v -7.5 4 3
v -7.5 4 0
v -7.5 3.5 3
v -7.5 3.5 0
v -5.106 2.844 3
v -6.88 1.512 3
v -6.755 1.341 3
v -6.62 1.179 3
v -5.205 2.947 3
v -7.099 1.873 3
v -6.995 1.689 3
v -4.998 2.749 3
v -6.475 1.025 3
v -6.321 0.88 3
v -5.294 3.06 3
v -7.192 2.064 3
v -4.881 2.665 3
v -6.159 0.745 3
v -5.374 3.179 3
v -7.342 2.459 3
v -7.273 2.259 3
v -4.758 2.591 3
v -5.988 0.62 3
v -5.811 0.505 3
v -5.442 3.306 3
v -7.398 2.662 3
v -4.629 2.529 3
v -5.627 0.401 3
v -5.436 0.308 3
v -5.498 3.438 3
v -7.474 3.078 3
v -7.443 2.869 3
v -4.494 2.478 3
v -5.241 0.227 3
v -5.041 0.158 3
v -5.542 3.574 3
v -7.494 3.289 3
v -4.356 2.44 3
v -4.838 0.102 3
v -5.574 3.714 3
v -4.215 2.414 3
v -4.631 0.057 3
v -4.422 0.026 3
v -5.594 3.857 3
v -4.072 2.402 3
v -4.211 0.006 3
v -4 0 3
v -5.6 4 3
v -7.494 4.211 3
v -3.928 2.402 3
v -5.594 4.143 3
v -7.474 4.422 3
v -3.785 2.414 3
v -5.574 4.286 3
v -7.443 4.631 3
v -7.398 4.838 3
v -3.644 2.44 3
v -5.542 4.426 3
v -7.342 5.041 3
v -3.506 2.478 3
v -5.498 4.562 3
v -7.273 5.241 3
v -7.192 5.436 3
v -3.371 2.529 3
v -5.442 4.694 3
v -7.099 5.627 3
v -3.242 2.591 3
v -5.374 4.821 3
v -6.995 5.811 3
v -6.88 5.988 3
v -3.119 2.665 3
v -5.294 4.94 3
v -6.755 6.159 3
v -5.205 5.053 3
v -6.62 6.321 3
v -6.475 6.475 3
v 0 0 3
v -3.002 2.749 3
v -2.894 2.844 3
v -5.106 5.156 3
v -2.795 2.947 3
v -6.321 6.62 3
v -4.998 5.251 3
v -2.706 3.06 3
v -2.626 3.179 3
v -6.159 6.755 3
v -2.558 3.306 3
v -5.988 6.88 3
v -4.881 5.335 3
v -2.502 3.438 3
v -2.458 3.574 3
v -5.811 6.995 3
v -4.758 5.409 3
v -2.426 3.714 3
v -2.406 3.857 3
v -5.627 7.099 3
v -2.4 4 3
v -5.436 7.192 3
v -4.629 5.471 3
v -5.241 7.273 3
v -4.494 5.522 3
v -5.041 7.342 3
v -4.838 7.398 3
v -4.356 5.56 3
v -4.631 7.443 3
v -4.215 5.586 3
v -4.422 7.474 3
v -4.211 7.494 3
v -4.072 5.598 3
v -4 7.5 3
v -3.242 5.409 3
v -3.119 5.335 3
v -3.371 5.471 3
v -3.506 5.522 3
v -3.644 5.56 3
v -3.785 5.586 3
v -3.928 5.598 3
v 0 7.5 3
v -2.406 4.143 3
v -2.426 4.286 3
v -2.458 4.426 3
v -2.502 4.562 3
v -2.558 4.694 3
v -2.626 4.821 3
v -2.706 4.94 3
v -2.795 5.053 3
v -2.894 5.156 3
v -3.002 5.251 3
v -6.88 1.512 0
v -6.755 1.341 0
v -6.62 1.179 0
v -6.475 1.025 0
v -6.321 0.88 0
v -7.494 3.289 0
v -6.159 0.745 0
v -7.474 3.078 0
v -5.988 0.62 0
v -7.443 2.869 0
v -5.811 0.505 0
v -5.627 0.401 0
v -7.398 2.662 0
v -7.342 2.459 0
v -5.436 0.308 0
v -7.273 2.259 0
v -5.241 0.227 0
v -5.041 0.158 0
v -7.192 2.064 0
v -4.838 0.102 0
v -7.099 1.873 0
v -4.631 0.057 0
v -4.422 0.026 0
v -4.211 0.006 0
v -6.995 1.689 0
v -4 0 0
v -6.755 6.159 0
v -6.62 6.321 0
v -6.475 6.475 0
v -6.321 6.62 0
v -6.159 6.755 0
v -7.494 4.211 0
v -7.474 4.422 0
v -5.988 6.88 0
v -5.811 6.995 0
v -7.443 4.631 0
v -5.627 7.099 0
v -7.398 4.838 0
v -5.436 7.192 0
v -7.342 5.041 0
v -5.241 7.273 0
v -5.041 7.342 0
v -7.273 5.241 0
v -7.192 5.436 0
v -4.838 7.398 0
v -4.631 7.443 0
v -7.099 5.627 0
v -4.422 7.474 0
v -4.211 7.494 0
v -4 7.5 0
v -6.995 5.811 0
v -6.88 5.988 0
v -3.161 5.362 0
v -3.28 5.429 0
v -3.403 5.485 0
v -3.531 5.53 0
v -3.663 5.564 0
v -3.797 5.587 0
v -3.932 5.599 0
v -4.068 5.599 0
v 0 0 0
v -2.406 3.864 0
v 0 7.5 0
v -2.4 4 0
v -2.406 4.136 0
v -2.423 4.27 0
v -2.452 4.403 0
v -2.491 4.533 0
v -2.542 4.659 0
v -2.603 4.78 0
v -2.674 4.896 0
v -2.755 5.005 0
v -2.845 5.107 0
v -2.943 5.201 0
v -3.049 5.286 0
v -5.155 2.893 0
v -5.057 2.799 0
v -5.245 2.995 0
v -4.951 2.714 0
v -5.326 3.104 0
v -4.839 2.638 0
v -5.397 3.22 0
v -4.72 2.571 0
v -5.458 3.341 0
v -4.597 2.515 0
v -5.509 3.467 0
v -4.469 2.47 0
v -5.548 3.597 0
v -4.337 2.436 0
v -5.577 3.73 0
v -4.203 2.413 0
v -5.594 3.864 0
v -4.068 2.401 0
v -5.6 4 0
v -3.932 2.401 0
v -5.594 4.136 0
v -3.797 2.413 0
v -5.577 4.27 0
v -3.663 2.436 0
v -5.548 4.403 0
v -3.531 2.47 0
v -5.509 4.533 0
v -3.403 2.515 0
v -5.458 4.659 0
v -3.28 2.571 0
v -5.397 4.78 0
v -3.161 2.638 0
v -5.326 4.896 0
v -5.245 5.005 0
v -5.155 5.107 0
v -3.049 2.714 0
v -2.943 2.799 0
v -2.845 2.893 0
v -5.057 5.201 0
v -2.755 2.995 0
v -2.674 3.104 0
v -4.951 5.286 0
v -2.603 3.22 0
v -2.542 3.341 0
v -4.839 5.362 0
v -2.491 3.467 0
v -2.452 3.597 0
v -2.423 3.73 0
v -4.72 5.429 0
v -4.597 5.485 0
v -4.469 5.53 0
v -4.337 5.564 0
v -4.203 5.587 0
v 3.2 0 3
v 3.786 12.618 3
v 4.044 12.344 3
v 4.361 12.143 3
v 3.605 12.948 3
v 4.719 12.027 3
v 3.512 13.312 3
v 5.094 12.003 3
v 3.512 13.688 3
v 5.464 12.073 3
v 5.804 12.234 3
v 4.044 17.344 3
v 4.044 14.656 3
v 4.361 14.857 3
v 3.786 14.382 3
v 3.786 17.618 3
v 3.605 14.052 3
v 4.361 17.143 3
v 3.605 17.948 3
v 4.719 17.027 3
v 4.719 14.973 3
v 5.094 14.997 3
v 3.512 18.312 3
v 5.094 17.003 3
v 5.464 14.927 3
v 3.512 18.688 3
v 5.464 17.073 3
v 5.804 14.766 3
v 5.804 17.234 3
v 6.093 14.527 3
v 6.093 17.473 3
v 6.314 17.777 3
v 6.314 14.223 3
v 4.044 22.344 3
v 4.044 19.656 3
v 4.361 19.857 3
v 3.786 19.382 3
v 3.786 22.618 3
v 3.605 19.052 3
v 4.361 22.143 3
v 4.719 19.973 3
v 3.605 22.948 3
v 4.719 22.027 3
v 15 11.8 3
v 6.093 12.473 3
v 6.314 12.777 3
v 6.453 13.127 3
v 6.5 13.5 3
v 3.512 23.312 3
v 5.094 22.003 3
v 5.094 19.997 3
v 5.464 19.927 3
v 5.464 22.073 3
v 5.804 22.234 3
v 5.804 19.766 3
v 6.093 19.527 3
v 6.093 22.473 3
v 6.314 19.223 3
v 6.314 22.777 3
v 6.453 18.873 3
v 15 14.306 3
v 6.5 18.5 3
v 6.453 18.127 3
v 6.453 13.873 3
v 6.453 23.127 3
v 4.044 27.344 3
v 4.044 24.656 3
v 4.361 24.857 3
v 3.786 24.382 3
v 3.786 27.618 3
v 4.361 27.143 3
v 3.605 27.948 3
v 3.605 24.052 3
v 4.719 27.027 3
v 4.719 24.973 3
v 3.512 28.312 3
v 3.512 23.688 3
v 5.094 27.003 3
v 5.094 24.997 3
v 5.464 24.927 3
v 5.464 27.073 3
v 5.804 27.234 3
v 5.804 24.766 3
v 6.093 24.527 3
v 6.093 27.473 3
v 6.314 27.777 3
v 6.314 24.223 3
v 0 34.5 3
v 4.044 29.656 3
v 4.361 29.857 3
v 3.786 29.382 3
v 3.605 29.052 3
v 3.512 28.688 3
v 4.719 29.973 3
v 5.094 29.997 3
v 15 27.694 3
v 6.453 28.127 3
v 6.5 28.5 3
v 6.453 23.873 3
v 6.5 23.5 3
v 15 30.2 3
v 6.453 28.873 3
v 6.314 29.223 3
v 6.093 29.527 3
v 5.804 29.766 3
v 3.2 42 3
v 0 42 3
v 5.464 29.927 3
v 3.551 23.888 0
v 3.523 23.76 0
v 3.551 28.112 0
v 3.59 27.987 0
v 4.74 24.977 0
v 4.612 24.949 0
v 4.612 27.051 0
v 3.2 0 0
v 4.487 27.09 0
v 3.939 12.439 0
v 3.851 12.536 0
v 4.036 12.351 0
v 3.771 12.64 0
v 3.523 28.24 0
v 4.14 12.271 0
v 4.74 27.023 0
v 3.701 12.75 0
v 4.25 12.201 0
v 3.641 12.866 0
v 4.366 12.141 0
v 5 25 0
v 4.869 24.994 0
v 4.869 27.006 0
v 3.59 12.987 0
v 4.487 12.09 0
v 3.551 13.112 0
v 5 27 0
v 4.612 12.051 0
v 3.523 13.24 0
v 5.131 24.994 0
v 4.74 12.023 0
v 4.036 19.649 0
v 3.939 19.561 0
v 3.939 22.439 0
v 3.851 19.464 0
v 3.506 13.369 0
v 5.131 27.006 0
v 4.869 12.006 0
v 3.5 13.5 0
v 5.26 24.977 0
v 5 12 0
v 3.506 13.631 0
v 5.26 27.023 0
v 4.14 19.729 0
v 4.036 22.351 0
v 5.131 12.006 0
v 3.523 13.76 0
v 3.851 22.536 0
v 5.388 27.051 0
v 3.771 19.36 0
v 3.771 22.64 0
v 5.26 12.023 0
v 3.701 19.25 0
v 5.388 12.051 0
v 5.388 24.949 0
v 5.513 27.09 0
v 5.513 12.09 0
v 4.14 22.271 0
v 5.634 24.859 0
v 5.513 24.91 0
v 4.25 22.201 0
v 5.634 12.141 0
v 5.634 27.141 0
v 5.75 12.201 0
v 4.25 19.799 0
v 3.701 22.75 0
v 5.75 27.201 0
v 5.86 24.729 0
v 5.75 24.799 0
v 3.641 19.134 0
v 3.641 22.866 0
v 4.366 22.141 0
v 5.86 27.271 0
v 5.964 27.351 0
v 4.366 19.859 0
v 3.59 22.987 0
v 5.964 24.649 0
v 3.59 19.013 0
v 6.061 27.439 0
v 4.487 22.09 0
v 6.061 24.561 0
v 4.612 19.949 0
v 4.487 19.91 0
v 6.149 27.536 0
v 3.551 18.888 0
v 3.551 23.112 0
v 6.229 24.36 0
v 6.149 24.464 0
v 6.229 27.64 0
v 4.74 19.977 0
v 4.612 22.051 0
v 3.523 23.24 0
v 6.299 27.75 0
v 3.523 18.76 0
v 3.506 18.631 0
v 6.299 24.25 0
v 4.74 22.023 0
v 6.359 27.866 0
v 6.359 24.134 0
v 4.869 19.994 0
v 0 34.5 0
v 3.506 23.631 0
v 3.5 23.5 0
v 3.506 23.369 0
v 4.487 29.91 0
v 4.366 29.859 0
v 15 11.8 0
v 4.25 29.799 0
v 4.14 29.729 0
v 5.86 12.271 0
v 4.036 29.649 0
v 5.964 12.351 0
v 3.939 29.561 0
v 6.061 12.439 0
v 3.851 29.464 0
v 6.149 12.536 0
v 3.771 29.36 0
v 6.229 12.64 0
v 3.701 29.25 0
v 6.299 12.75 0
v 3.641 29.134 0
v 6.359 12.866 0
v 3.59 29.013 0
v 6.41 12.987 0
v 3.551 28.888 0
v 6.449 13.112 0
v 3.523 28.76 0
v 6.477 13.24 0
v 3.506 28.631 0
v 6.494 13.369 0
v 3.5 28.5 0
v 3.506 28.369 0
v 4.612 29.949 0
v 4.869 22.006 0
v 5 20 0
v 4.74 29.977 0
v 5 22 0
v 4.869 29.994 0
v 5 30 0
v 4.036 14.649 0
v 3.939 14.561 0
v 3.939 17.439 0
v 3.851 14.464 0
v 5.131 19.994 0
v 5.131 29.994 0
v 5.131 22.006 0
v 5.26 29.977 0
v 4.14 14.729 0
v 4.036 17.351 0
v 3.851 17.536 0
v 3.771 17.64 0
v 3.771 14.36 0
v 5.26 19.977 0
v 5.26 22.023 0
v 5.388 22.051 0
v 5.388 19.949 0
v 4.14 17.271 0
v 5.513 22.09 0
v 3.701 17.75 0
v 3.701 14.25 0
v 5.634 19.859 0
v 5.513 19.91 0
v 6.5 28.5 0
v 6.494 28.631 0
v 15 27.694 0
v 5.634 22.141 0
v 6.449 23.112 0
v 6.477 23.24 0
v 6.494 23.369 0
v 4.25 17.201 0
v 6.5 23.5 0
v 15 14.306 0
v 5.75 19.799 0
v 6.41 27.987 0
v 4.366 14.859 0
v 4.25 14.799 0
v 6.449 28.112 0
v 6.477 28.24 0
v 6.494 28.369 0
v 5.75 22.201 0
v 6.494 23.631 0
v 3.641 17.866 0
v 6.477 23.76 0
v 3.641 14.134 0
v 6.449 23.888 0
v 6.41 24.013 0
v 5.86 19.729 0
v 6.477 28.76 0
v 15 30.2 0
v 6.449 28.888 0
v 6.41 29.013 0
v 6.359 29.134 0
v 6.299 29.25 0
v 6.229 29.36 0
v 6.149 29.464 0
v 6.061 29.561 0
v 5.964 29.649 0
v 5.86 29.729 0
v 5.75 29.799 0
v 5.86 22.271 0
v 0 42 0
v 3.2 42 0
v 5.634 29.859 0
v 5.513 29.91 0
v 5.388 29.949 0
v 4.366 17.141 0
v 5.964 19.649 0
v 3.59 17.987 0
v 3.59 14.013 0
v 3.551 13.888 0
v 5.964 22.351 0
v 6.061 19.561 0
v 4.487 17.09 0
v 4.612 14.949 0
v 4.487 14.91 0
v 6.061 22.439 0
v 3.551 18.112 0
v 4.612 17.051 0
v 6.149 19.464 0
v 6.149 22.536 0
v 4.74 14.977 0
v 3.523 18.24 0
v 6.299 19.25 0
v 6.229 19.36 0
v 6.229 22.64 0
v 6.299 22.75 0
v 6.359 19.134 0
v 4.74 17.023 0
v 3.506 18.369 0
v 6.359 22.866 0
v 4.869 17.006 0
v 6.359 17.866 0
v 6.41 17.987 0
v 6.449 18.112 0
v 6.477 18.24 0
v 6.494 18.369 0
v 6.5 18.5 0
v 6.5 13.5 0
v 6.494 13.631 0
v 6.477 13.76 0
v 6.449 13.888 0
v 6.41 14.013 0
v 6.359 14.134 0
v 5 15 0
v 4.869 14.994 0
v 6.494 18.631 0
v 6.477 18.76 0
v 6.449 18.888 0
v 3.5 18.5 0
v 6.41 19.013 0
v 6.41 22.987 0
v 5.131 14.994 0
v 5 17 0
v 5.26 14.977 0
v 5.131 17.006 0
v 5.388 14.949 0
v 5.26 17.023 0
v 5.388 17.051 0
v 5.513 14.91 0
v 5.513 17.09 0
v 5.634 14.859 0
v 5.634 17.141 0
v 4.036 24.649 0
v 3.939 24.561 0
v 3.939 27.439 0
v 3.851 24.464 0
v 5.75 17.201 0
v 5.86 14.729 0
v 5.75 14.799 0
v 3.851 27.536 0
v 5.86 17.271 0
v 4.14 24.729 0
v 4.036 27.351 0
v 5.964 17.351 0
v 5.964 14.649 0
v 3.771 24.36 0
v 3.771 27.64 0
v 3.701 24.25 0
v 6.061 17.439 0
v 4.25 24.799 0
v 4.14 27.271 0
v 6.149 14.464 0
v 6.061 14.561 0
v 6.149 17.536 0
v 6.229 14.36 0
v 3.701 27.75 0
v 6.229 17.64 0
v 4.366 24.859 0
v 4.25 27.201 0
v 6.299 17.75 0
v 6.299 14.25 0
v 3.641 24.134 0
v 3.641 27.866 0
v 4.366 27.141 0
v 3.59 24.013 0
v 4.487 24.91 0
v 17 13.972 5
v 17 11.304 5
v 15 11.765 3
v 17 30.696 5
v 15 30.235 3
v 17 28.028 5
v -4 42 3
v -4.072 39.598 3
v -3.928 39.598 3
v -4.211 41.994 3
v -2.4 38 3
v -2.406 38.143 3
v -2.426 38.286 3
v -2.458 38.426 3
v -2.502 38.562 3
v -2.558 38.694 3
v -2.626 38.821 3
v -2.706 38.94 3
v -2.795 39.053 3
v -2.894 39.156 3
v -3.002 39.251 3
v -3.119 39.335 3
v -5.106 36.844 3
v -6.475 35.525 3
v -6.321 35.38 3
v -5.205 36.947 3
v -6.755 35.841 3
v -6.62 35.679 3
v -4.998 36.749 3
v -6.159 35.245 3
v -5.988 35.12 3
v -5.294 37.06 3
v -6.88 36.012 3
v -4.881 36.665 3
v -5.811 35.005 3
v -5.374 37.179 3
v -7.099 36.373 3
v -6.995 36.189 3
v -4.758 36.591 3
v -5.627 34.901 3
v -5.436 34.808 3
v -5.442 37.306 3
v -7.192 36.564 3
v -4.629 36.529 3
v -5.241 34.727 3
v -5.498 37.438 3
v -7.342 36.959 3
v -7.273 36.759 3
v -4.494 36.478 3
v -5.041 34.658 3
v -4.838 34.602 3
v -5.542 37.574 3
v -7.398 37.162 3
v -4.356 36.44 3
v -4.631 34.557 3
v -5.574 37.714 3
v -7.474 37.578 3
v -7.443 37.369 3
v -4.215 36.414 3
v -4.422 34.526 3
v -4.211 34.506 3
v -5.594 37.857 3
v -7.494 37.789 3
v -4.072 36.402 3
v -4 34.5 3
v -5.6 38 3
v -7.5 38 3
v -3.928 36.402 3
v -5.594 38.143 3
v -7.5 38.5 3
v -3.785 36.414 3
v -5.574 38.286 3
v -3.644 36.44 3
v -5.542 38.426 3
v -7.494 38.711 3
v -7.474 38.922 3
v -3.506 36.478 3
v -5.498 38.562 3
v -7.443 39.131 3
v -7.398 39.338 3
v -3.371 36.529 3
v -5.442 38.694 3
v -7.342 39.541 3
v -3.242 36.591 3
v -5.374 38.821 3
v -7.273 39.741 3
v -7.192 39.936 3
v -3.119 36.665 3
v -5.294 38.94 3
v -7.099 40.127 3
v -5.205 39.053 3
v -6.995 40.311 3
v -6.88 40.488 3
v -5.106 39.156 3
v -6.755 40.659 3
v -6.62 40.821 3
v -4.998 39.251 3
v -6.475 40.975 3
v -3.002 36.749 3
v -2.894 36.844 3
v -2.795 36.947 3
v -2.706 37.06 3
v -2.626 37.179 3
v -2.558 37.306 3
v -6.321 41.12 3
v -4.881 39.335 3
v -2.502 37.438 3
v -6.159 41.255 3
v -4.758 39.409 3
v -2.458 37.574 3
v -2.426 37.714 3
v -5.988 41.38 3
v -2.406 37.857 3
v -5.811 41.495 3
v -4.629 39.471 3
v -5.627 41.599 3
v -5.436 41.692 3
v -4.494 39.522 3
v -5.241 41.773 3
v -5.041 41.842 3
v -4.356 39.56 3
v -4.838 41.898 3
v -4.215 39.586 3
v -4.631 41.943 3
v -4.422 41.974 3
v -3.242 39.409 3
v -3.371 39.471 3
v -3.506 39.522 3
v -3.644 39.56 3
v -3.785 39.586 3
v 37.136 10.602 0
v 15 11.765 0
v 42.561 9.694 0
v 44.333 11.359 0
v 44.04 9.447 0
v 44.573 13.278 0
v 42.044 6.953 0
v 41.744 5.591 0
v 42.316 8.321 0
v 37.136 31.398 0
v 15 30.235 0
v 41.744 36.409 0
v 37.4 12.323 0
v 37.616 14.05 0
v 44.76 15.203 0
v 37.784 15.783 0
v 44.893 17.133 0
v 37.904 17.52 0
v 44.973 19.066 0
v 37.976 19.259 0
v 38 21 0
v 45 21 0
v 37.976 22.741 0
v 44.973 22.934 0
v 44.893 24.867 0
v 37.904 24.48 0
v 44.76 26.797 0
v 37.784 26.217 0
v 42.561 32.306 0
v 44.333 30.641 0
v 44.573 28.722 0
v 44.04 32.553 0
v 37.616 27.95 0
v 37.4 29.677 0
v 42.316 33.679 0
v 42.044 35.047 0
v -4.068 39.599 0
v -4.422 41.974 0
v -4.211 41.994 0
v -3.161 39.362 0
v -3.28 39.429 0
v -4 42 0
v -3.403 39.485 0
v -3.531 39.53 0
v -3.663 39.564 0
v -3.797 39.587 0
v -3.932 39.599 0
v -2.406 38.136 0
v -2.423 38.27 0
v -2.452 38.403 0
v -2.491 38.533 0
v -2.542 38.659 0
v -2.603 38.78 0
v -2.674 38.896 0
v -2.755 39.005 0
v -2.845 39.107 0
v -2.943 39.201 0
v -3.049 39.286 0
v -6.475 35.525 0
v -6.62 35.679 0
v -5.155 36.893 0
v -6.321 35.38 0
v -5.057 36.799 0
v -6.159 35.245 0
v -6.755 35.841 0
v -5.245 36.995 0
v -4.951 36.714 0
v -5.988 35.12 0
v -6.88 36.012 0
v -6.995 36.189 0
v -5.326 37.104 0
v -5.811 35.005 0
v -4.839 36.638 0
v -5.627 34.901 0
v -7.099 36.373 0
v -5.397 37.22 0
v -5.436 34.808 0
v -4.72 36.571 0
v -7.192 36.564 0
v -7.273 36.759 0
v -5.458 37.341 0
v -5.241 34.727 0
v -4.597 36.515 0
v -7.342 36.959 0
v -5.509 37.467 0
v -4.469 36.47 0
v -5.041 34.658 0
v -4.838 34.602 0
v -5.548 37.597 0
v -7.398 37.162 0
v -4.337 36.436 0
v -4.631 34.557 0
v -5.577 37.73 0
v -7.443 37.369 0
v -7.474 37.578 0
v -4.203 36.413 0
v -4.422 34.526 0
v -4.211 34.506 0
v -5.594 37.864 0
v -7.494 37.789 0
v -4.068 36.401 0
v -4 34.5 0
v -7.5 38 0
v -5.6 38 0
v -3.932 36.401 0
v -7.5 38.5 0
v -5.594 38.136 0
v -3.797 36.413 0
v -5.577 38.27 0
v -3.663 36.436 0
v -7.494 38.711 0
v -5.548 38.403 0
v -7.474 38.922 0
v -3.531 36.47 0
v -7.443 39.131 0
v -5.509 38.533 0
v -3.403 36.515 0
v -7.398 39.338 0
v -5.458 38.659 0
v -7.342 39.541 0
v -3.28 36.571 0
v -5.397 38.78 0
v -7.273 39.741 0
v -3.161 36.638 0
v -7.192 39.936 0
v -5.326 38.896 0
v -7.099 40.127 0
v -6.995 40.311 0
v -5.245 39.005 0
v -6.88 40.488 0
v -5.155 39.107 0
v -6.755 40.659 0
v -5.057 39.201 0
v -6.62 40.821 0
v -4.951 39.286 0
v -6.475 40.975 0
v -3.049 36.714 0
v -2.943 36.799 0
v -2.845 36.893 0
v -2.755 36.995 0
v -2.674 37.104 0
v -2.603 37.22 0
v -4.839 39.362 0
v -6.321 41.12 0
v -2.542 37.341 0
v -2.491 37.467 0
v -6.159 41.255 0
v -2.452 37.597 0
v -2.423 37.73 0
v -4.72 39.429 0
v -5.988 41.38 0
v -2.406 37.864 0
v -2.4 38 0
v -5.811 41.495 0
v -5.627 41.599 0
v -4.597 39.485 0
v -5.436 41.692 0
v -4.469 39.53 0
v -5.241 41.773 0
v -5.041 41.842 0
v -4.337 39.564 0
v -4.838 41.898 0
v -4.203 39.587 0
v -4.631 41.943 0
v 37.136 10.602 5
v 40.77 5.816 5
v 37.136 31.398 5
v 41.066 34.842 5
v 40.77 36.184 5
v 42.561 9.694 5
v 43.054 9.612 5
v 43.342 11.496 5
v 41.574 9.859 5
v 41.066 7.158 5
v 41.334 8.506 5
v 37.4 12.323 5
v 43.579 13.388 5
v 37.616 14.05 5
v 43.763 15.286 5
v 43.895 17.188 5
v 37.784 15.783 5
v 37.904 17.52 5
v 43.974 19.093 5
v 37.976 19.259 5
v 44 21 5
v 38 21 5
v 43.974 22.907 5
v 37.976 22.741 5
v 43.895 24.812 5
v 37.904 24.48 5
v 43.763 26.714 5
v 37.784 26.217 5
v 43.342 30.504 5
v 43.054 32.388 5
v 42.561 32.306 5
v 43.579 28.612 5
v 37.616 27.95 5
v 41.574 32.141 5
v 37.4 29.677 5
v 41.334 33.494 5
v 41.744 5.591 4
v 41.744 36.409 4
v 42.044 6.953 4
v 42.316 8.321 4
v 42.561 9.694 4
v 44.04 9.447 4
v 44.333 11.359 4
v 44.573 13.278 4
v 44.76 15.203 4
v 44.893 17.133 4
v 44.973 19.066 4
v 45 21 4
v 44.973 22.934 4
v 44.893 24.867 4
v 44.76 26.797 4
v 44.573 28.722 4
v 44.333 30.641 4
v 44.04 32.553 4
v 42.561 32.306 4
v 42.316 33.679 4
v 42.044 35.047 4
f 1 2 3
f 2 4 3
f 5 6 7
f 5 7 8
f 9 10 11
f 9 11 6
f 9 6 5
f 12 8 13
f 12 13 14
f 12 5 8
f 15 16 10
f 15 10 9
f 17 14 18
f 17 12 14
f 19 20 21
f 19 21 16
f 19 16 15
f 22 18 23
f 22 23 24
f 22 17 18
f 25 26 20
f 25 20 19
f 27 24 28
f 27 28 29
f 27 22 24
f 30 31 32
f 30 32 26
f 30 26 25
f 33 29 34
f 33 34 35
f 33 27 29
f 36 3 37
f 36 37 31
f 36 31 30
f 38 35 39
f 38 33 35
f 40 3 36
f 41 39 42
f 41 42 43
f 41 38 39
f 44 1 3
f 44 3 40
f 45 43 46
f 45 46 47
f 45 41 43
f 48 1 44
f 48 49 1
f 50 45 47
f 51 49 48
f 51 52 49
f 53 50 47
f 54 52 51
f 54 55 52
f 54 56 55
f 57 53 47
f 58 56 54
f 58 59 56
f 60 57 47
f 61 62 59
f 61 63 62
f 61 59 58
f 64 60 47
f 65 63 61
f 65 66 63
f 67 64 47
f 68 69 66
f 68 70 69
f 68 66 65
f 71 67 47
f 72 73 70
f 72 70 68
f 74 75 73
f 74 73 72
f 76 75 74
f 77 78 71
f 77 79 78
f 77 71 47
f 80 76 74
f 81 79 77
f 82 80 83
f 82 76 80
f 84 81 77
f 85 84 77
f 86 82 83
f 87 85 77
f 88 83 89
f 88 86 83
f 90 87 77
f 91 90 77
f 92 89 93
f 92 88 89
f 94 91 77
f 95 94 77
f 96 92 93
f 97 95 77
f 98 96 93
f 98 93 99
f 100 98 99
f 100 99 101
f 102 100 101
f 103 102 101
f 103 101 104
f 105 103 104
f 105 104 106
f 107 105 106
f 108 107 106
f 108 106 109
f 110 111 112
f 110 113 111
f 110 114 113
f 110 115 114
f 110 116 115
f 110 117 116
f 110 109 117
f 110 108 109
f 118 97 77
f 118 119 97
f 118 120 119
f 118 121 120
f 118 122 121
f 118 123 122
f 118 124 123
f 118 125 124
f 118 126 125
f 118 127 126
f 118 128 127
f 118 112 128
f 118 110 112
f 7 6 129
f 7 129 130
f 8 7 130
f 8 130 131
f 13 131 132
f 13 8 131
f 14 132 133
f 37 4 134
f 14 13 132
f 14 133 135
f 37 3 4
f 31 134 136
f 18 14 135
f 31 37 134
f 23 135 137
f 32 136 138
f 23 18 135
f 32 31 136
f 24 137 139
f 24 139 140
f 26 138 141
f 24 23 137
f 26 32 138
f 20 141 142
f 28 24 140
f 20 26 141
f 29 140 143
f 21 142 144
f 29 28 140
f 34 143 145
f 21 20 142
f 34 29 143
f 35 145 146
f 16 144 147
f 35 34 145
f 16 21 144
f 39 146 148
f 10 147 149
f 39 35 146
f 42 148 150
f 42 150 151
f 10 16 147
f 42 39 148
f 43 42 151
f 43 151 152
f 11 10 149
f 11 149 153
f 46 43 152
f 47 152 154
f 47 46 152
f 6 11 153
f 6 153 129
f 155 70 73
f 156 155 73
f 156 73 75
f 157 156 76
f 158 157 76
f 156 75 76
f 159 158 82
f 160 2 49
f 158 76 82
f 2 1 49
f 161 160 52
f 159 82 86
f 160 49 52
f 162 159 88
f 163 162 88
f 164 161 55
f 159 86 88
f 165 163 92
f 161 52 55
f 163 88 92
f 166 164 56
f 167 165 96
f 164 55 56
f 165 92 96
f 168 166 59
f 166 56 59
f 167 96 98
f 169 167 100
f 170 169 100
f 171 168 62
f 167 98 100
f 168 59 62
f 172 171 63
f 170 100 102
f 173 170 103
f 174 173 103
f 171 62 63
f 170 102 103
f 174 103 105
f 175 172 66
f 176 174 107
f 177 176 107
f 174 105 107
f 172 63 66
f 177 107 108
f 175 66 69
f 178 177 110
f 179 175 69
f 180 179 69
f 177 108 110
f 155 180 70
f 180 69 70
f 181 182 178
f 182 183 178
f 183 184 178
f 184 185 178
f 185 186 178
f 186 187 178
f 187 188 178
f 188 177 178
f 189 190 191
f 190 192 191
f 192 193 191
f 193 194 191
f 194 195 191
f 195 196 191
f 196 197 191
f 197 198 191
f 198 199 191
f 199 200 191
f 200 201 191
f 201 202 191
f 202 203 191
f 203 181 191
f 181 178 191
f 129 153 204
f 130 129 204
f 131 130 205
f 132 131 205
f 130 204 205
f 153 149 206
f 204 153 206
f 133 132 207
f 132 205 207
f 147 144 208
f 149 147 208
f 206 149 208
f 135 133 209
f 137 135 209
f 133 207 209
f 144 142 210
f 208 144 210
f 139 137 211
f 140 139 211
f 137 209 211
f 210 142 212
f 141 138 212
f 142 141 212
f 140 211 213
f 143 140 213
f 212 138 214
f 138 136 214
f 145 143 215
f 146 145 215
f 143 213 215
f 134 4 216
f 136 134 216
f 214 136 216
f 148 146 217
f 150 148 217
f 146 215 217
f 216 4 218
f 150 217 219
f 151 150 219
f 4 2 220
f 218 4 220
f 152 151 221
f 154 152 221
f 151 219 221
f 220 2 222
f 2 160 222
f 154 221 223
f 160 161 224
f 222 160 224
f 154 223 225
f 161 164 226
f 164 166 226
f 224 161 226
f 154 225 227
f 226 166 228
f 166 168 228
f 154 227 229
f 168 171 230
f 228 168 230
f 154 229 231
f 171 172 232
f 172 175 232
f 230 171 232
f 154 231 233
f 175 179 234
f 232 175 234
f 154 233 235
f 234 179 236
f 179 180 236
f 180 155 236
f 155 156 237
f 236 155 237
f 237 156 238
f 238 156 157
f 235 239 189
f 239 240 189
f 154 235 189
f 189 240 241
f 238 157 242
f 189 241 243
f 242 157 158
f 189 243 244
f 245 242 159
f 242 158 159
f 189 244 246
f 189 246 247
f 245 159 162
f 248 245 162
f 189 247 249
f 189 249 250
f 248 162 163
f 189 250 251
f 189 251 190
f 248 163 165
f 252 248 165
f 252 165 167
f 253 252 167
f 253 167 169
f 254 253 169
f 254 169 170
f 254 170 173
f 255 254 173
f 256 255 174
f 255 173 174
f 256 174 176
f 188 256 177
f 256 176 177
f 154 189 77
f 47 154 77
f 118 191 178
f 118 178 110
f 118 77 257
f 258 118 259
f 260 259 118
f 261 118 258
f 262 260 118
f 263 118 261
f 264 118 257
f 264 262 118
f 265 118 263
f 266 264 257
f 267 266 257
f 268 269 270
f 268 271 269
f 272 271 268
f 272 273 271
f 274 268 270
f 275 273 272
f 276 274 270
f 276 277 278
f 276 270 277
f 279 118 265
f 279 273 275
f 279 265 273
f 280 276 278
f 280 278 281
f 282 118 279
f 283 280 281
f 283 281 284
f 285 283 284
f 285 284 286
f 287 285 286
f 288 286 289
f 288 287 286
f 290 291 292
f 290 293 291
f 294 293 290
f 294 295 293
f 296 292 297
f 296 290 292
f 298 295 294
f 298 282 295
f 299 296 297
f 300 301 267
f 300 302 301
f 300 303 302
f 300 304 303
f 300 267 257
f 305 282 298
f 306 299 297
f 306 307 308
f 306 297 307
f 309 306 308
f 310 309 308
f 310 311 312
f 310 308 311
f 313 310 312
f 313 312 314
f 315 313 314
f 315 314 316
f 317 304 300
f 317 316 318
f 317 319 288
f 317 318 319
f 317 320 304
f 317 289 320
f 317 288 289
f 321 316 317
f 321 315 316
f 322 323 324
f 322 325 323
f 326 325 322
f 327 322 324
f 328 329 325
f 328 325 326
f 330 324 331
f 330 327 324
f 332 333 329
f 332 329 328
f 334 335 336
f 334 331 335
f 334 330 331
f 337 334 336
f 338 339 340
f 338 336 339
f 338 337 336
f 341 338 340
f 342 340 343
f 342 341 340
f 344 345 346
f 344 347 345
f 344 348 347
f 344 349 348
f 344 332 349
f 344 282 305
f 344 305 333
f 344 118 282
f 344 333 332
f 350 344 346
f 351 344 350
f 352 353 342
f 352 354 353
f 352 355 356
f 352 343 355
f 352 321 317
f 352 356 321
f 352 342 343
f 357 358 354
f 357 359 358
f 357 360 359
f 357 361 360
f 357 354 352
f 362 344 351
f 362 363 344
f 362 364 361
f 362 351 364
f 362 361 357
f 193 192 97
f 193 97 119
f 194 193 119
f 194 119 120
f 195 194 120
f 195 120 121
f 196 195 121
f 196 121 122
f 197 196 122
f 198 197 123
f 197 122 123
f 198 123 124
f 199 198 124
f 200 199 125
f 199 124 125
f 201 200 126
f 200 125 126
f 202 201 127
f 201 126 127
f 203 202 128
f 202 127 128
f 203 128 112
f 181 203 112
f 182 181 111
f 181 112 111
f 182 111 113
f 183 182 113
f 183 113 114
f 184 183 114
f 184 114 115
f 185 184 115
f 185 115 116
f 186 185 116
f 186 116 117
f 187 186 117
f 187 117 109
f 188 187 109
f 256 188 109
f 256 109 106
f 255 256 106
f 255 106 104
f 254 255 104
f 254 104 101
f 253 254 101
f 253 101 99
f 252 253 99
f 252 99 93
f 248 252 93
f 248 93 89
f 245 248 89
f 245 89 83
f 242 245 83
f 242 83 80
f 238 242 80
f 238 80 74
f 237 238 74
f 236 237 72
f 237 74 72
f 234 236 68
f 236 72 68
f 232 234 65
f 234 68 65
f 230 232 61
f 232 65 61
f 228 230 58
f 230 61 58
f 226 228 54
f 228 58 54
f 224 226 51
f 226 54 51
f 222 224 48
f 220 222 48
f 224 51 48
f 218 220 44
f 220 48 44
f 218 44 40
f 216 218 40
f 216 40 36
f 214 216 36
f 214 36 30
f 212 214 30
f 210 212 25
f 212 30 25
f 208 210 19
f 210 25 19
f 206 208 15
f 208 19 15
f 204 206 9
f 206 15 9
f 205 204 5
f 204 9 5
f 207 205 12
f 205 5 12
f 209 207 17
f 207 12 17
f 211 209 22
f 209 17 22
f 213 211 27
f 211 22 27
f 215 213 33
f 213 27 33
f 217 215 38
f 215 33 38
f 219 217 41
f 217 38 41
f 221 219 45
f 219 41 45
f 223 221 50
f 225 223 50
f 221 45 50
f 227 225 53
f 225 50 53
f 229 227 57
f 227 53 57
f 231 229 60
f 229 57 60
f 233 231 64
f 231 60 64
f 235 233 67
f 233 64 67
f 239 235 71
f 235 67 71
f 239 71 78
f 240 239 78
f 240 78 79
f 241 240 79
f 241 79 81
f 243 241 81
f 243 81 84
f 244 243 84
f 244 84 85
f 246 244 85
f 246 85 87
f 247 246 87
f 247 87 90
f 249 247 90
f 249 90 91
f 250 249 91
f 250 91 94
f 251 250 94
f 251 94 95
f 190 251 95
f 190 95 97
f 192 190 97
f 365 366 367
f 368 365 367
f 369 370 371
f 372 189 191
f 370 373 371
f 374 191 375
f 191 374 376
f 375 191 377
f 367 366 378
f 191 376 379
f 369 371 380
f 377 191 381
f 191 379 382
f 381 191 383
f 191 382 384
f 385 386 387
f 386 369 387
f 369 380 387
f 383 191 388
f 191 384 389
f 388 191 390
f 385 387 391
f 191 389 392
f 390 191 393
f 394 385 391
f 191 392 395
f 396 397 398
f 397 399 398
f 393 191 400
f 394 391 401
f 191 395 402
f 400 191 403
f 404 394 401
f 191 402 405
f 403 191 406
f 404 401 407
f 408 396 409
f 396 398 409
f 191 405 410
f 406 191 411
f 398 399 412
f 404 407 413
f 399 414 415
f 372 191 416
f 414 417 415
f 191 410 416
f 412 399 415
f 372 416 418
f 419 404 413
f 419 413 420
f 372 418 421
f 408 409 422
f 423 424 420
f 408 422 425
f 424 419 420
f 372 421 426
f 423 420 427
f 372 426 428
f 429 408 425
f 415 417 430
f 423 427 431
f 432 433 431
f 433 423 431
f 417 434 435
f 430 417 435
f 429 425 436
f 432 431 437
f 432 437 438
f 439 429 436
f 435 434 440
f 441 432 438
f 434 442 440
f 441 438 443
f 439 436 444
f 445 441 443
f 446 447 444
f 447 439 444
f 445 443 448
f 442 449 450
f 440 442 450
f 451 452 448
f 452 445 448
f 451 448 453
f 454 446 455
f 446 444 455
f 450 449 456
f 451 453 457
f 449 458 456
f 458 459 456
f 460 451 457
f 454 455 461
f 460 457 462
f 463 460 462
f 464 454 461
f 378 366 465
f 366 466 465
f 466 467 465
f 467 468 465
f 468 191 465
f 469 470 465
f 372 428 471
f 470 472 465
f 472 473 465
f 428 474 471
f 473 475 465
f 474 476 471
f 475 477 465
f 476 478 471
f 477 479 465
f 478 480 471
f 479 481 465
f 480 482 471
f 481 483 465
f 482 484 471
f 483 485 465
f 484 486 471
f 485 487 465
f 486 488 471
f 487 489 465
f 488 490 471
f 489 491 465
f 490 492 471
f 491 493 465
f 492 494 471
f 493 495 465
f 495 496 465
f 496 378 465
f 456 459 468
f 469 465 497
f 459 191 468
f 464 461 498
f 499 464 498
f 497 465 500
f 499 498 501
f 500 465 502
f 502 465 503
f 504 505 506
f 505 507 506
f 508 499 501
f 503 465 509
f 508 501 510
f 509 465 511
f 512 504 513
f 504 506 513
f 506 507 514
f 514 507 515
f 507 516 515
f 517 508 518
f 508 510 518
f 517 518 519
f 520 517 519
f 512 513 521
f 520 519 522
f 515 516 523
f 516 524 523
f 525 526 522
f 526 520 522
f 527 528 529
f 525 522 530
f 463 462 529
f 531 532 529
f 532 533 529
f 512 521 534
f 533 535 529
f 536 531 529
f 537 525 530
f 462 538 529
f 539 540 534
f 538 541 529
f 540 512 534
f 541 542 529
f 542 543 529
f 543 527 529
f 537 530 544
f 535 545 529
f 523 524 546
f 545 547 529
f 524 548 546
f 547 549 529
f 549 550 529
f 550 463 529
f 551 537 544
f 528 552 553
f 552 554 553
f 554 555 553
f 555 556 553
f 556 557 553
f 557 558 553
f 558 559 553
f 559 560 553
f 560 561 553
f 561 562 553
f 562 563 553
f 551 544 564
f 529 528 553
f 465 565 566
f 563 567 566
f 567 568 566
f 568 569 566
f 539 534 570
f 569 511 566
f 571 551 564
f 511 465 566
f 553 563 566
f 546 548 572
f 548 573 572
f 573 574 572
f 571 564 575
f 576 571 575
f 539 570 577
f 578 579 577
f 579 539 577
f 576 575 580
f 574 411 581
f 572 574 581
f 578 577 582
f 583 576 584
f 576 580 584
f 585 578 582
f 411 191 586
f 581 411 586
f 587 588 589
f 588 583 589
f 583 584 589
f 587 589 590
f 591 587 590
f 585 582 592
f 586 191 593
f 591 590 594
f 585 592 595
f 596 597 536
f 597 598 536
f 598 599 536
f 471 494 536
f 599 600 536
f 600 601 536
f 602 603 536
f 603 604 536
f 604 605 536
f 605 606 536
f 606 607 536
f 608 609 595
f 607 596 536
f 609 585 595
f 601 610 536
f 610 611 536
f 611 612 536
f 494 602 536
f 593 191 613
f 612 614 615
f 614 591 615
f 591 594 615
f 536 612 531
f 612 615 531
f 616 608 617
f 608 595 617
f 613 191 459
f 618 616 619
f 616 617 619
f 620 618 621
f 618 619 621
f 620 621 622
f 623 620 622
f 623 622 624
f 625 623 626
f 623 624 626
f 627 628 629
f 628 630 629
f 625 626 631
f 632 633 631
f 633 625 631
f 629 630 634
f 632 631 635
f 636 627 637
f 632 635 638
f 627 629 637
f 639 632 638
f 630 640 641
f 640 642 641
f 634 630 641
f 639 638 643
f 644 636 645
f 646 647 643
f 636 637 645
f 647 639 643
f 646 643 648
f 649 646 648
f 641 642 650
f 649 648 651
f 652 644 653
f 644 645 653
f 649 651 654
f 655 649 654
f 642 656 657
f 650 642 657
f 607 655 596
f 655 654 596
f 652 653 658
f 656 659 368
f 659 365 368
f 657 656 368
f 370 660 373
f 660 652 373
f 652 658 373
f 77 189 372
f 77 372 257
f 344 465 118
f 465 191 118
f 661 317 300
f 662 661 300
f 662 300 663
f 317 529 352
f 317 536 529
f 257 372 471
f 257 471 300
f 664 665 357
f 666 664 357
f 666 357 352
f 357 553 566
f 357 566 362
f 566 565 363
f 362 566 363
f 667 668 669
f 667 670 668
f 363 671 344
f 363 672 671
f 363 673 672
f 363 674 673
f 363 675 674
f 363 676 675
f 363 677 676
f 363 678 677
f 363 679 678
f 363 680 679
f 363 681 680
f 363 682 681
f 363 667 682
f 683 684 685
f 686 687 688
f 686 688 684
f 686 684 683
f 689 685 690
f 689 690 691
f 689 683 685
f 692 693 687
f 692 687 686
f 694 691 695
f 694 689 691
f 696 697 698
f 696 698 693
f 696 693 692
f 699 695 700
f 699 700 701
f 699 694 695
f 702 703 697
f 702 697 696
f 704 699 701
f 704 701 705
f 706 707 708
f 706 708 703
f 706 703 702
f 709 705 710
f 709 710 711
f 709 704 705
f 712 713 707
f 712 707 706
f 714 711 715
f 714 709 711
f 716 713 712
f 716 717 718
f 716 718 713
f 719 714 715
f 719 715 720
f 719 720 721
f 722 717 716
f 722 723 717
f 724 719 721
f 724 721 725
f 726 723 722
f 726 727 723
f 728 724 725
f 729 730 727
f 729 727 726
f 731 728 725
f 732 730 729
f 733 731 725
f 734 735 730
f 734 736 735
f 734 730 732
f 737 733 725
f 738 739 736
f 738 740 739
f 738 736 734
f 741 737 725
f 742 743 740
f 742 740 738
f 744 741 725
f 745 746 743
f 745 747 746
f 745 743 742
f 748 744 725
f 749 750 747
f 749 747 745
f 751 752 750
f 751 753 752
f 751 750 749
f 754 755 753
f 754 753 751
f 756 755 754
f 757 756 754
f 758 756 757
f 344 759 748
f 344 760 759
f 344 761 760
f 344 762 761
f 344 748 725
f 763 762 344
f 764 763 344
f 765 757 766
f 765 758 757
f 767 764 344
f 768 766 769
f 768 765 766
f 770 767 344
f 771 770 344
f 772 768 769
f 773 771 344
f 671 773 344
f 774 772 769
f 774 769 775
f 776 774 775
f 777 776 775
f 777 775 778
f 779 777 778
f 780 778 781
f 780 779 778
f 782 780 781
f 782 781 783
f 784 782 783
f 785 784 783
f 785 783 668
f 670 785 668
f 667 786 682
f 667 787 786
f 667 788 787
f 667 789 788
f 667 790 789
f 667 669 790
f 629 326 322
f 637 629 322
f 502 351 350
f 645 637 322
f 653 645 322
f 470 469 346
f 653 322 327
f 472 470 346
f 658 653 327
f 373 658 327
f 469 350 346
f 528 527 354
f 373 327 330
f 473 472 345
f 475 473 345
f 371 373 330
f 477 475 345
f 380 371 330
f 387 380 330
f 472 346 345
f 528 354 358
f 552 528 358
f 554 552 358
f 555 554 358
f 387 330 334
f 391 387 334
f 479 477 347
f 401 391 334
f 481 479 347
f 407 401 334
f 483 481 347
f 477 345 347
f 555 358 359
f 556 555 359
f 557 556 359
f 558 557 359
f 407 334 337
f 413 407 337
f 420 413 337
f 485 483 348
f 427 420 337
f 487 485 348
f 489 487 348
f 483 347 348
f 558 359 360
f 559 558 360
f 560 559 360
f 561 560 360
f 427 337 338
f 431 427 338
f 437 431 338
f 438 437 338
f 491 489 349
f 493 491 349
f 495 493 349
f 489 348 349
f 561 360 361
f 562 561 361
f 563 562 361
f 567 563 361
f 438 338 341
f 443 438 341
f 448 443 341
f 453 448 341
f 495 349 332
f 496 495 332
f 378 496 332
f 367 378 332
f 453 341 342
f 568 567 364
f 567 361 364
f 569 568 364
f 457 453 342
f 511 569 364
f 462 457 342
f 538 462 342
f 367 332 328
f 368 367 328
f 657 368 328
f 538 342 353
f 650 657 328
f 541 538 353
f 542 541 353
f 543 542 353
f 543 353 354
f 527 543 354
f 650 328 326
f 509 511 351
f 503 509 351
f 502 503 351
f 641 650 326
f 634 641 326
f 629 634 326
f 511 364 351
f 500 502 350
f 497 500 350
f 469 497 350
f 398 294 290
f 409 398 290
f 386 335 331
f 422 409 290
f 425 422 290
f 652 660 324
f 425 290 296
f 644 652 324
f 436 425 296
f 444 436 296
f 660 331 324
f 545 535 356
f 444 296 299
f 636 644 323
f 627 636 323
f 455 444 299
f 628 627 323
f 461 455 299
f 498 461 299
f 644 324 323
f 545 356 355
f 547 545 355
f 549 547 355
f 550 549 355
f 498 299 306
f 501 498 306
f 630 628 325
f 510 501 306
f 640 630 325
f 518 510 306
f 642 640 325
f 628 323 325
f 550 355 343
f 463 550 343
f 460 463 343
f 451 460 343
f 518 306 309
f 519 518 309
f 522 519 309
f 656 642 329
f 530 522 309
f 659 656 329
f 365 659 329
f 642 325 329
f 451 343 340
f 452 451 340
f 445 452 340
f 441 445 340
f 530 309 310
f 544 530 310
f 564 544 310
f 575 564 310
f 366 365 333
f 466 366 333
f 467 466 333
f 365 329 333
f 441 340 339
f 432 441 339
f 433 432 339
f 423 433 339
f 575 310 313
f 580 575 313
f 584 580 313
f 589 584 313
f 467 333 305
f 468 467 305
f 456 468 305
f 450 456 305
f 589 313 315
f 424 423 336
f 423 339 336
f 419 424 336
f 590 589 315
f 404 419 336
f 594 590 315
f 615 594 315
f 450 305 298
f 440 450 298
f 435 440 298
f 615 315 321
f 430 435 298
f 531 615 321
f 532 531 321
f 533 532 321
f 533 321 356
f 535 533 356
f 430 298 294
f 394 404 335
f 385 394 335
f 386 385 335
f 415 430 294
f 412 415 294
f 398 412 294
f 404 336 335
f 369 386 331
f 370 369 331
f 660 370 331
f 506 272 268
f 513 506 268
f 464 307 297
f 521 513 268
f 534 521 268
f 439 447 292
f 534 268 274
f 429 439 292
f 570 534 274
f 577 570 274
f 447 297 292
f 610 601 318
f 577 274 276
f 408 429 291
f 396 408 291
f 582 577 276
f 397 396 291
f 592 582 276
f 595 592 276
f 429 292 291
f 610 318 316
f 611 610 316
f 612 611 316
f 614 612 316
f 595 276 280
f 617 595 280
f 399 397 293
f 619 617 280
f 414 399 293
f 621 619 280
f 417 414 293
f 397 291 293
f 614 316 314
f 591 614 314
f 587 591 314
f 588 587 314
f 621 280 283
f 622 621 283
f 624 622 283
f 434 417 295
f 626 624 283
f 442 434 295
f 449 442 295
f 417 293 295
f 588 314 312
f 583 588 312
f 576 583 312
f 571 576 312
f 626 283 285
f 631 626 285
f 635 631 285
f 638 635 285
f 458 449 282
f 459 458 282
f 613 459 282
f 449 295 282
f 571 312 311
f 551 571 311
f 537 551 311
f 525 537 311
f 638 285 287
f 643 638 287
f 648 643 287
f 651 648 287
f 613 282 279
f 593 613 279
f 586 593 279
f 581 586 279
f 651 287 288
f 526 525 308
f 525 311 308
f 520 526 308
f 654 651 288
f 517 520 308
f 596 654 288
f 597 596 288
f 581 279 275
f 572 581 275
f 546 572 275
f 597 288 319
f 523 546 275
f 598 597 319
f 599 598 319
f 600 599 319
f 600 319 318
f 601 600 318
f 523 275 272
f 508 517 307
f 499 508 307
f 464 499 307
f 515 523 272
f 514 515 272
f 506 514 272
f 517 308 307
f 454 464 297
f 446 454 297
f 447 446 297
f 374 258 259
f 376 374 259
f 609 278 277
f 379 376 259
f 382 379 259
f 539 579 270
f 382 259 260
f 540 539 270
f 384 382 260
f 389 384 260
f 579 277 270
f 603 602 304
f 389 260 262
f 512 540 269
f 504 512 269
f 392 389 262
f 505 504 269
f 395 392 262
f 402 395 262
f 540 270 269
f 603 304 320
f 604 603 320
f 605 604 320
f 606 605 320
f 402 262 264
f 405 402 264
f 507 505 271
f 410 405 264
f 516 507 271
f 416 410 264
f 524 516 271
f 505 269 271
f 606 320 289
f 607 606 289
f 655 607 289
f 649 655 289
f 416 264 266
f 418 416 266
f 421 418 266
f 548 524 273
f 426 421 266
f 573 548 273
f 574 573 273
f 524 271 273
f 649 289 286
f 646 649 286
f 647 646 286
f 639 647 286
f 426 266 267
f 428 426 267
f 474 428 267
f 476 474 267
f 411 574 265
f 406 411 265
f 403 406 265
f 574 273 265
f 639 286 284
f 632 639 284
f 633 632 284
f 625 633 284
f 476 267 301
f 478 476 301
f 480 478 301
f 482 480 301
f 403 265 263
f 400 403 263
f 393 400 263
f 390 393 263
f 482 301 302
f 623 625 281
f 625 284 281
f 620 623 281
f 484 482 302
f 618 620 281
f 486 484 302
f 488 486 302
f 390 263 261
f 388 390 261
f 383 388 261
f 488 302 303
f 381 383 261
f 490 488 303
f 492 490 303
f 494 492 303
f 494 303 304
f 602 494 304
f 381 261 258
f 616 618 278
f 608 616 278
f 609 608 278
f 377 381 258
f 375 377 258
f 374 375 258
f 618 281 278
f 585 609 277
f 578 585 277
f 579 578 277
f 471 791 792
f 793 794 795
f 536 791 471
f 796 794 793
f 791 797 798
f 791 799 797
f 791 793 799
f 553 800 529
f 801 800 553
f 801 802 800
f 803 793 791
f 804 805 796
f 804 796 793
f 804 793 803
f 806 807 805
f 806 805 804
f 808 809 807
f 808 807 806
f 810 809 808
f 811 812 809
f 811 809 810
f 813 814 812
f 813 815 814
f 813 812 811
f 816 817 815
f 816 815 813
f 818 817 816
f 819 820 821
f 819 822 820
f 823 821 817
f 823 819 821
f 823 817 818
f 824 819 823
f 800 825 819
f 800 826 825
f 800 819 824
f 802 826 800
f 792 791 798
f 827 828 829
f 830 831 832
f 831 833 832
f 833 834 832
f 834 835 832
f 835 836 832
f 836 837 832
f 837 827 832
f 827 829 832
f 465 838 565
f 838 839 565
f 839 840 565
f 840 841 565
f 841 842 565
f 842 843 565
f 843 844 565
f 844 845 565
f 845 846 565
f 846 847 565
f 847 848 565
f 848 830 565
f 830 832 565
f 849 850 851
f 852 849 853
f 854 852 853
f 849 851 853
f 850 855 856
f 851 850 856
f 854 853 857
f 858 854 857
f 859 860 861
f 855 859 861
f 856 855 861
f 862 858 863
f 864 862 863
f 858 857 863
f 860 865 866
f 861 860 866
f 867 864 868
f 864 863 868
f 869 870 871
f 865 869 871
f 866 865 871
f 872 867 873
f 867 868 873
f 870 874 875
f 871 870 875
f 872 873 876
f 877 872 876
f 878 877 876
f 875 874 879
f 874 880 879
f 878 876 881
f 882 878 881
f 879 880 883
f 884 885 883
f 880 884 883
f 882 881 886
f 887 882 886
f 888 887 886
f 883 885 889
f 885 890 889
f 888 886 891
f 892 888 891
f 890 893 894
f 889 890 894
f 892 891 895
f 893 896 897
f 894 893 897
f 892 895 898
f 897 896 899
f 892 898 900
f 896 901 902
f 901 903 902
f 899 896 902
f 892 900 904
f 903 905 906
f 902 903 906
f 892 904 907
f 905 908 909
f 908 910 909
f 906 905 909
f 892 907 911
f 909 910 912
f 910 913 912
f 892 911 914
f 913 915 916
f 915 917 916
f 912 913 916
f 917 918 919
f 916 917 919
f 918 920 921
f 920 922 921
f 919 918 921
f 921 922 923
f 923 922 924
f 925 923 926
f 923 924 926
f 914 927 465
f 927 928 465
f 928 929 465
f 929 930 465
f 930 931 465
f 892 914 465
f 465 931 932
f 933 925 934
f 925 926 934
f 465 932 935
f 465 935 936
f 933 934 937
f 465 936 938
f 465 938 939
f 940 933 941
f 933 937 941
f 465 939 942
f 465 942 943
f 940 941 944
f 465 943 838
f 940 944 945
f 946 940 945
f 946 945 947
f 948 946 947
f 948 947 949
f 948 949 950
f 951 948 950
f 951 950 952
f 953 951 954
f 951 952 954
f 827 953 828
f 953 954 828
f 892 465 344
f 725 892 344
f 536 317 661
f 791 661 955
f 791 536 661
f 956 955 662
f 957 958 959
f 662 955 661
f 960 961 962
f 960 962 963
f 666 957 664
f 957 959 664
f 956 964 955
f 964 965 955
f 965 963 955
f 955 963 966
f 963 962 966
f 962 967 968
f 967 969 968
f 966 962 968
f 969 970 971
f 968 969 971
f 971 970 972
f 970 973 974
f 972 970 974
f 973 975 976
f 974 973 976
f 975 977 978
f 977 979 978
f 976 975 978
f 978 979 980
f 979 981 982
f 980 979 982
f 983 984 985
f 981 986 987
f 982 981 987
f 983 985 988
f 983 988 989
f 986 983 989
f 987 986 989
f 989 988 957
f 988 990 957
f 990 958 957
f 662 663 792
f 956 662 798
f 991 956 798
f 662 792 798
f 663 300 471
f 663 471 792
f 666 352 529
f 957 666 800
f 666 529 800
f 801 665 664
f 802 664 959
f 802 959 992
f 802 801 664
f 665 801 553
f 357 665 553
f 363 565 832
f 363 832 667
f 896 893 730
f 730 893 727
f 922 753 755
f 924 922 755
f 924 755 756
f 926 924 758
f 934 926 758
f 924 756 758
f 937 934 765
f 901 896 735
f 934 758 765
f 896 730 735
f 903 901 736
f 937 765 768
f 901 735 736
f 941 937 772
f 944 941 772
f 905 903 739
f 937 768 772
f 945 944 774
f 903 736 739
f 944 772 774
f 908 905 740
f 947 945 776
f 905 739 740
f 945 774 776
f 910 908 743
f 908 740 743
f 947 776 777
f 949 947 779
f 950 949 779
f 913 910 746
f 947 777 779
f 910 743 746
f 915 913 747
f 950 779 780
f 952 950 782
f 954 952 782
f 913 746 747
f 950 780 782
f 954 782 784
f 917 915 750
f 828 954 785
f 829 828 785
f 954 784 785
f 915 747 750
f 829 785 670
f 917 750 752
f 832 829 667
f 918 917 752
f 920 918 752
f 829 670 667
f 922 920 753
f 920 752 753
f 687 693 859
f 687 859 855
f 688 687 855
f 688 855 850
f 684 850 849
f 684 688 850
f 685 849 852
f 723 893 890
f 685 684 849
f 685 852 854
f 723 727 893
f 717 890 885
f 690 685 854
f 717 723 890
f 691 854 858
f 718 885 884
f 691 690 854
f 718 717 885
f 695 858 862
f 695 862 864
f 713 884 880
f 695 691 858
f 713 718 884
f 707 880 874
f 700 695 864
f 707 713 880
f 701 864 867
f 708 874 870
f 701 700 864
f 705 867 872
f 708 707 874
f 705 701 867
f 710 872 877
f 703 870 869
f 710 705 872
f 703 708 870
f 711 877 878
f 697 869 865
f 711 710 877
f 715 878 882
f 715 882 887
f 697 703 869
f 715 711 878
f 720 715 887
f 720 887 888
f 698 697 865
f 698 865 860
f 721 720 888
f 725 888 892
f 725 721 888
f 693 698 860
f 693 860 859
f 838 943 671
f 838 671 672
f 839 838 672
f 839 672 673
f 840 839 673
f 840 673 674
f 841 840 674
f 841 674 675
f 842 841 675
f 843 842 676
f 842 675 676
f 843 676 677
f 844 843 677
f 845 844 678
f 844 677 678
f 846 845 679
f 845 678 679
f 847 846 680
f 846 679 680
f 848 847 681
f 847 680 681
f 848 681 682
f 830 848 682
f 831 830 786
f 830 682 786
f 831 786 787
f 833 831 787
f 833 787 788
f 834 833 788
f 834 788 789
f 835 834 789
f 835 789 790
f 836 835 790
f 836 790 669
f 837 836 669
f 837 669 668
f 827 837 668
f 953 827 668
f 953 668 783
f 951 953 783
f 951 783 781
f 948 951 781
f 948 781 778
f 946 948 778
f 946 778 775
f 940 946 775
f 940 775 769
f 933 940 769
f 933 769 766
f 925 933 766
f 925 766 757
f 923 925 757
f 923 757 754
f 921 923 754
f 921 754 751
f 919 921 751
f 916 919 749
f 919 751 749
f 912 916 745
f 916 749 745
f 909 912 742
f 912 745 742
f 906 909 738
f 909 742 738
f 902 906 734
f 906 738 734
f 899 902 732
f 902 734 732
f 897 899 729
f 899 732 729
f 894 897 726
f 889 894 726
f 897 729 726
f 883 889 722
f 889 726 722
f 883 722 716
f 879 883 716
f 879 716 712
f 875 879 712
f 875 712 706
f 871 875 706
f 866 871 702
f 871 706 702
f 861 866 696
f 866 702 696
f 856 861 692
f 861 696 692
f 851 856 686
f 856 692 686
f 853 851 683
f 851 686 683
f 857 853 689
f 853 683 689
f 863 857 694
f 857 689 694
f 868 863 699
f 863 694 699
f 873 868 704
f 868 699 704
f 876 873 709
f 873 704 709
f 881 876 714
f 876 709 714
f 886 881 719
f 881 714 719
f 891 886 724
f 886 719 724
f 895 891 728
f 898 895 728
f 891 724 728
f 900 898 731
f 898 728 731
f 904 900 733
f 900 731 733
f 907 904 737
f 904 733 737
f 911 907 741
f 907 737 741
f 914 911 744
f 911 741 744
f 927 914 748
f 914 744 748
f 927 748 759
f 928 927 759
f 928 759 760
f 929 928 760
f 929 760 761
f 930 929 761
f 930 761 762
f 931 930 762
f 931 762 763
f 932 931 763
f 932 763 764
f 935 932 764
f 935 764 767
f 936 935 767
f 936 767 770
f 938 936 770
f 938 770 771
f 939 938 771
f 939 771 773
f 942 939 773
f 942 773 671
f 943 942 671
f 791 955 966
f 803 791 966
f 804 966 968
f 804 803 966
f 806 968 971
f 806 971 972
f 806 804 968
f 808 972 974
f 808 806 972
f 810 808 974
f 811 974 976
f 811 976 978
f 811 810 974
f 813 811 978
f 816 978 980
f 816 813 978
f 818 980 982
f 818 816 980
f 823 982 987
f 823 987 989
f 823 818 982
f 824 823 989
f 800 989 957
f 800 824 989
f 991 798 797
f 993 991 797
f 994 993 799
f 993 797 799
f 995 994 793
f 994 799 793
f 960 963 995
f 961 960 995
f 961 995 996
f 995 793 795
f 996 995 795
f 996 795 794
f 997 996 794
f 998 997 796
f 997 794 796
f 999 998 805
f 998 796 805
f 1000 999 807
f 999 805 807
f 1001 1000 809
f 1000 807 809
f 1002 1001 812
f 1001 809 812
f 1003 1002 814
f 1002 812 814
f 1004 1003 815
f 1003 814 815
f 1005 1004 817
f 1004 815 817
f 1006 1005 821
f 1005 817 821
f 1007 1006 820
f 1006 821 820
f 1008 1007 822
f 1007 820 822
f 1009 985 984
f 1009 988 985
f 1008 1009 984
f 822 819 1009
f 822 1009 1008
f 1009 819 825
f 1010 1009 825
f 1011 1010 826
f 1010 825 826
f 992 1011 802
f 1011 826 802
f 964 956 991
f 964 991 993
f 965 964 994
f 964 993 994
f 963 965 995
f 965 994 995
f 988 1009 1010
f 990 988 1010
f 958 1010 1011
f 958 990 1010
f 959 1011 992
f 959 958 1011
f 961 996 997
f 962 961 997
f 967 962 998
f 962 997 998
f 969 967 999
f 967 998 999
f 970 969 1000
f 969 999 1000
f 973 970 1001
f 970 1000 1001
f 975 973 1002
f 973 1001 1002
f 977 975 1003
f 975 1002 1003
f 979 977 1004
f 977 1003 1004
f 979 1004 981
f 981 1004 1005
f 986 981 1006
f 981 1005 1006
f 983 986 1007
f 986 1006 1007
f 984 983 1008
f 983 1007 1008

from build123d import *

# Parameters (mm, degrees)
CYLINDER_R        = 1.6
CYLINDER_DEPTH    = 10
BOX001_W          = 7.5
BOX001_H          = 7.5
BOX001_DEPTH      = 3
FILLET002_R       = 3.5
FILLET003_R       = 3.5
CYLINDER005_R     = 1.5
CYLINDER005_DEPTH = 10
CYLINDER004_R     = 1.5
CYLINDER004_DEPTH = 10
CYLINDER003_R     = 1.5
CYLINDER003_DEPTH = 10
CYLINDER002_R     = 1.5
CYLINDER002_DEPTH = 10
BOX_W             = 15
BOX_H             = 42
BOX_DEPTH         = 3
CHAMFER005_SIZE   = 11.8
CHAMFER006_SIZE   = 11.8
PAD_DEPTH         = 5
CHAMFER_SIZE      = 1
CHAMFER001_SIZE   = 1
CHAMFER002_SIZE   = 1
CHAMFER003_SIZE   = 2
CHAMFER004_SIZE   = 2
CYLINDER001_R     = 1.6
CYLINDER001_DEPTH = 10
BOX002_W          = 7.5
BOX002_H          = 7.5
BOX002_DEPTH      = 3
FILLET_R          = 3.5
FILLET001_R       = 3.5


with BuildPart() as cylinder:
    # Cylinder → Cylinder (new body)
    with BuildSketch(Plane(origin=(-4, 4, 0), x_dir=(1, 0, 0), z_dir=(0, 0, 1))):
        Circle(CYLINDER_R)
    extrude(amount=CYLINDER_DEPTH)


with BuildPart() as cut001:
    # Box001 → Box001 (new body)
    with BuildSketch(Plane(origin=(-7.5, 0, 0), x_dir=(1, 0, 0), z_dir=(0, 0, 1))):
        with Locations((3.75, 3.75)):
            Rectangle(BOX001_W, BOX001_H)
    extrude(amount=BOX001_DEPTH)

    # Fillet002
    fillet002_edges = [cut001.edges().sort_by_distance(p)[0] for p in [
        (-7.5, 7.5, 1.5),
    ]]
    fillet(fillet002_edges, radius=FILLET002_R)

    # Fillet003
    fillet003_edges = [cut001.edges().sort_by_distance(p)[0] for p in [
        (-7.5, 0, 1.5),
    ]]
    fillet(fillet003_edges, radius=FILLET003_R)

    # Cut001: cut Cylinder
    add(cylinder.part, mode=Mode.SUBTRACT)


with BuildPart() as cylinder005:
    # Cylinder005 → Cylinder005 (new body)
    with BuildSketch(Plane(origin=(5, 18.5, 0), x_dir=(1, 0, 0), z_dir=(0, 0, 1))):
        Circle(CYLINDER005_R)
    extrude(amount=CYLINDER005_DEPTH)


with BuildPart() as cylinder004:
    # Cylinder004 → Cylinder004 (new body)
    with BuildSketch(Plane(origin=(5, 23.5, 0), x_dir=(1, 0, 0), z_dir=(0, 0, 1))):
        Circle(CYLINDER004_R)
    extrude(amount=CYLINDER004_DEPTH)


with BuildPart() as cylinder003:
    # Cylinder003 → Cylinder003 (new body)
    with BuildSketch(Plane(origin=(5, 28.5, 0), x_dir=(1, 0, 0), z_dir=(0, 0, 1))):
        Circle(CYLINDER003_R)
    extrude(amount=CYLINDER003_DEPTH)


with BuildPart() as cylinder002:
    # Cylinder002 → Cylinder002 (new body)
    with BuildSketch(Plane(origin=(5, 13.5, 0), x_dir=(1, 0, 0), z_dir=(0, 0, 1))):
        Circle(CYLINDER002_R)
    extrude(amount=CYLINDER002_DEPTH)


with BuildPart() as cut005:
    # Box → Box (new body)
    with BuildSketch(Plane.XY):
        with Locations((7.5, 21)):
            Rectangle(BOX_W, BOX_H)
    extrude(amount=BOX_DEPTH)

    # Chamfer005
    chamfer005_edges = [cut005.edges().sort_by_distance(p)[0] for p in [
        (15, 42, 1.5),
    ]]
    chamfer(chamfer005_edges, length=CHAMFER005_SIZE)

    # Chamfer006
    chamfer006_edges = [cut005.edges().sort_by_distance(p)[0] for p in [
        (15, 0, 1.5),
    ]]
    chamfer(chamfer006_edges, length=CHAMFER006_SIZE)

    # Cut002: cut Cylinder002
    add(cylinder002.part, mode=Mode.SUBTRACT)

    # Cut003: cut Cylinder003
    add(cylinder003.part, mode=Mode.SUBTRACT)

    # Cut004: cut Cylinder004
    add(cylinder004.part, mode=Mode.SUBTRACT)

    # Cut005: cut Cylinder005
    add(cylinder005.part, mode=Mode.SUBTRACT)


with BuildPart() as chamfer004:
    # Sketch → Pad (new body)
    with BuildSketch(Plane(origin=(-25, 21, 0), x_dir=(1, 0, 0), z_dir=(0, 0, 1))):
        with BuildLine():
            ThreePointArc((66.744349, -15.409147), (67.183792, -13.363687), (67.560564, -11.305761))
            Line((67.560564, -11.305761), (69.039992, -11.553332))
            ThreePointArc((69.039992, -11.553332), (70, 0), (69.039992, 11.553332))
            Line((67.560564, 11.305761), (69.039992, 11.553332))
            ThreePointArc((67.560564, 11.305761), (67.183792, 13.363687), (66.744349, 15.409147))
            Line((40, 9.234728), (66.744349, 15.409147))
            Line((40, 9.234728), (40, 6.693704))
            Line((40, 6.693704), (62.135993, 10.397999))
            ThreePointArc((62.135993, -10.397999), (63, 0), (62.135993, 10.397999))
            Line((40, -6.693704), (62.135993, -10.397999))
            Line((40, -6.693704), (40, -9.234728))
            Line((40, -9.234728), (66.744349, -15.409147))
        make_face()
    extrude(amount=PAD_DEPTH)

    # Chamfer
    chamfer_edges = [chamfer004.edges().sort_by_distance(p)[0] for p in [
        (42.183792, 34.363687, 5),
    ]]
    chamfer(chamfer_edges, length=CHAMFER_SIZE)

    # Chamfer001
    chamfer001_edges = [chamfer004.edges().sort_by_distance(p)[0] for p in [
        (45, 21, 5),
    ]]
    chamfer(chamfer001_edges, length=CHAMFER001_SIZE)

    # Chamfer002
    chamfer002_edges = [chamfer004.edges().sort_by_distance(p)[0] for p in [
        (42.183792, 7.636313, 5),
    ]]
    chamfer(chamfer002_edges, length=CHAMFER002_SIZE)

    # Chamfer003
    chamfer003_edges = [chamfer004.edges().sort_by_distance(p)[0] for p in [
        (15, 28.964216, 5),
    ]]
    chamfer(chamfer003_edges, length=CHAMFER003_SIZE)

    # Chamfer004
    chamfer004_edges = [chamfer004.edges().sort_by_distance(p)[0] for p in [
        (15, 13.035784, 5),
    ]]
    chamfer(chamfer004_edges, length=CHAMFER004_SIZE)


with BuildPart() as cylinder001:
    # Cylinder001 → Cylinder001 (new body)
    with BuildSketch(Plane(origin=(-4, 38, 0), x_dir=(1, 0, 0), z_dir=(0, 0, 1))):
        Circle(CYLINDER001_R)
    extrude(amount=CYLINDER001_DEPTH)


with BuildPart() as fusion:
    # Box002 → Box002 (new body)
    with BuildSketch(Plane(origin=(-7.5, 34.5, 0), x_dir=(1, 0, 0), z_dir=(0, 0, 1))):
        with Locations((3.75, 3.75)):
            Rectangle(BOX002_W, BOX002_H)
    extrude(amount=BOX002_DEPTH)

    # Fillet
    fillet_edges = [fusion.edges().sort_by_distance(p)[0] for p in [
        (-7.5, 34.5, 1.5),
    ]]
    fillet(fillet_edges, radius=FILLET_R)

    # Fillet001
    fillet001_edges = [fusion.edges().sort_by_distance(p)[0] for p in [
        (-7.5, 42, 1.5),
    ]]
    fillet(fillet001_edges, radius=FILLET001_R)

    # Cut: cut Cylinder001
    add(cylinder001.part, mode=Mode.SUBTRACT)

    # Fusion: union Cut001, Cut005, Chamfer004
    add(cut001.part)
    add(cut005.part)
    add(chamfer004.part)


solid = fusion.part
